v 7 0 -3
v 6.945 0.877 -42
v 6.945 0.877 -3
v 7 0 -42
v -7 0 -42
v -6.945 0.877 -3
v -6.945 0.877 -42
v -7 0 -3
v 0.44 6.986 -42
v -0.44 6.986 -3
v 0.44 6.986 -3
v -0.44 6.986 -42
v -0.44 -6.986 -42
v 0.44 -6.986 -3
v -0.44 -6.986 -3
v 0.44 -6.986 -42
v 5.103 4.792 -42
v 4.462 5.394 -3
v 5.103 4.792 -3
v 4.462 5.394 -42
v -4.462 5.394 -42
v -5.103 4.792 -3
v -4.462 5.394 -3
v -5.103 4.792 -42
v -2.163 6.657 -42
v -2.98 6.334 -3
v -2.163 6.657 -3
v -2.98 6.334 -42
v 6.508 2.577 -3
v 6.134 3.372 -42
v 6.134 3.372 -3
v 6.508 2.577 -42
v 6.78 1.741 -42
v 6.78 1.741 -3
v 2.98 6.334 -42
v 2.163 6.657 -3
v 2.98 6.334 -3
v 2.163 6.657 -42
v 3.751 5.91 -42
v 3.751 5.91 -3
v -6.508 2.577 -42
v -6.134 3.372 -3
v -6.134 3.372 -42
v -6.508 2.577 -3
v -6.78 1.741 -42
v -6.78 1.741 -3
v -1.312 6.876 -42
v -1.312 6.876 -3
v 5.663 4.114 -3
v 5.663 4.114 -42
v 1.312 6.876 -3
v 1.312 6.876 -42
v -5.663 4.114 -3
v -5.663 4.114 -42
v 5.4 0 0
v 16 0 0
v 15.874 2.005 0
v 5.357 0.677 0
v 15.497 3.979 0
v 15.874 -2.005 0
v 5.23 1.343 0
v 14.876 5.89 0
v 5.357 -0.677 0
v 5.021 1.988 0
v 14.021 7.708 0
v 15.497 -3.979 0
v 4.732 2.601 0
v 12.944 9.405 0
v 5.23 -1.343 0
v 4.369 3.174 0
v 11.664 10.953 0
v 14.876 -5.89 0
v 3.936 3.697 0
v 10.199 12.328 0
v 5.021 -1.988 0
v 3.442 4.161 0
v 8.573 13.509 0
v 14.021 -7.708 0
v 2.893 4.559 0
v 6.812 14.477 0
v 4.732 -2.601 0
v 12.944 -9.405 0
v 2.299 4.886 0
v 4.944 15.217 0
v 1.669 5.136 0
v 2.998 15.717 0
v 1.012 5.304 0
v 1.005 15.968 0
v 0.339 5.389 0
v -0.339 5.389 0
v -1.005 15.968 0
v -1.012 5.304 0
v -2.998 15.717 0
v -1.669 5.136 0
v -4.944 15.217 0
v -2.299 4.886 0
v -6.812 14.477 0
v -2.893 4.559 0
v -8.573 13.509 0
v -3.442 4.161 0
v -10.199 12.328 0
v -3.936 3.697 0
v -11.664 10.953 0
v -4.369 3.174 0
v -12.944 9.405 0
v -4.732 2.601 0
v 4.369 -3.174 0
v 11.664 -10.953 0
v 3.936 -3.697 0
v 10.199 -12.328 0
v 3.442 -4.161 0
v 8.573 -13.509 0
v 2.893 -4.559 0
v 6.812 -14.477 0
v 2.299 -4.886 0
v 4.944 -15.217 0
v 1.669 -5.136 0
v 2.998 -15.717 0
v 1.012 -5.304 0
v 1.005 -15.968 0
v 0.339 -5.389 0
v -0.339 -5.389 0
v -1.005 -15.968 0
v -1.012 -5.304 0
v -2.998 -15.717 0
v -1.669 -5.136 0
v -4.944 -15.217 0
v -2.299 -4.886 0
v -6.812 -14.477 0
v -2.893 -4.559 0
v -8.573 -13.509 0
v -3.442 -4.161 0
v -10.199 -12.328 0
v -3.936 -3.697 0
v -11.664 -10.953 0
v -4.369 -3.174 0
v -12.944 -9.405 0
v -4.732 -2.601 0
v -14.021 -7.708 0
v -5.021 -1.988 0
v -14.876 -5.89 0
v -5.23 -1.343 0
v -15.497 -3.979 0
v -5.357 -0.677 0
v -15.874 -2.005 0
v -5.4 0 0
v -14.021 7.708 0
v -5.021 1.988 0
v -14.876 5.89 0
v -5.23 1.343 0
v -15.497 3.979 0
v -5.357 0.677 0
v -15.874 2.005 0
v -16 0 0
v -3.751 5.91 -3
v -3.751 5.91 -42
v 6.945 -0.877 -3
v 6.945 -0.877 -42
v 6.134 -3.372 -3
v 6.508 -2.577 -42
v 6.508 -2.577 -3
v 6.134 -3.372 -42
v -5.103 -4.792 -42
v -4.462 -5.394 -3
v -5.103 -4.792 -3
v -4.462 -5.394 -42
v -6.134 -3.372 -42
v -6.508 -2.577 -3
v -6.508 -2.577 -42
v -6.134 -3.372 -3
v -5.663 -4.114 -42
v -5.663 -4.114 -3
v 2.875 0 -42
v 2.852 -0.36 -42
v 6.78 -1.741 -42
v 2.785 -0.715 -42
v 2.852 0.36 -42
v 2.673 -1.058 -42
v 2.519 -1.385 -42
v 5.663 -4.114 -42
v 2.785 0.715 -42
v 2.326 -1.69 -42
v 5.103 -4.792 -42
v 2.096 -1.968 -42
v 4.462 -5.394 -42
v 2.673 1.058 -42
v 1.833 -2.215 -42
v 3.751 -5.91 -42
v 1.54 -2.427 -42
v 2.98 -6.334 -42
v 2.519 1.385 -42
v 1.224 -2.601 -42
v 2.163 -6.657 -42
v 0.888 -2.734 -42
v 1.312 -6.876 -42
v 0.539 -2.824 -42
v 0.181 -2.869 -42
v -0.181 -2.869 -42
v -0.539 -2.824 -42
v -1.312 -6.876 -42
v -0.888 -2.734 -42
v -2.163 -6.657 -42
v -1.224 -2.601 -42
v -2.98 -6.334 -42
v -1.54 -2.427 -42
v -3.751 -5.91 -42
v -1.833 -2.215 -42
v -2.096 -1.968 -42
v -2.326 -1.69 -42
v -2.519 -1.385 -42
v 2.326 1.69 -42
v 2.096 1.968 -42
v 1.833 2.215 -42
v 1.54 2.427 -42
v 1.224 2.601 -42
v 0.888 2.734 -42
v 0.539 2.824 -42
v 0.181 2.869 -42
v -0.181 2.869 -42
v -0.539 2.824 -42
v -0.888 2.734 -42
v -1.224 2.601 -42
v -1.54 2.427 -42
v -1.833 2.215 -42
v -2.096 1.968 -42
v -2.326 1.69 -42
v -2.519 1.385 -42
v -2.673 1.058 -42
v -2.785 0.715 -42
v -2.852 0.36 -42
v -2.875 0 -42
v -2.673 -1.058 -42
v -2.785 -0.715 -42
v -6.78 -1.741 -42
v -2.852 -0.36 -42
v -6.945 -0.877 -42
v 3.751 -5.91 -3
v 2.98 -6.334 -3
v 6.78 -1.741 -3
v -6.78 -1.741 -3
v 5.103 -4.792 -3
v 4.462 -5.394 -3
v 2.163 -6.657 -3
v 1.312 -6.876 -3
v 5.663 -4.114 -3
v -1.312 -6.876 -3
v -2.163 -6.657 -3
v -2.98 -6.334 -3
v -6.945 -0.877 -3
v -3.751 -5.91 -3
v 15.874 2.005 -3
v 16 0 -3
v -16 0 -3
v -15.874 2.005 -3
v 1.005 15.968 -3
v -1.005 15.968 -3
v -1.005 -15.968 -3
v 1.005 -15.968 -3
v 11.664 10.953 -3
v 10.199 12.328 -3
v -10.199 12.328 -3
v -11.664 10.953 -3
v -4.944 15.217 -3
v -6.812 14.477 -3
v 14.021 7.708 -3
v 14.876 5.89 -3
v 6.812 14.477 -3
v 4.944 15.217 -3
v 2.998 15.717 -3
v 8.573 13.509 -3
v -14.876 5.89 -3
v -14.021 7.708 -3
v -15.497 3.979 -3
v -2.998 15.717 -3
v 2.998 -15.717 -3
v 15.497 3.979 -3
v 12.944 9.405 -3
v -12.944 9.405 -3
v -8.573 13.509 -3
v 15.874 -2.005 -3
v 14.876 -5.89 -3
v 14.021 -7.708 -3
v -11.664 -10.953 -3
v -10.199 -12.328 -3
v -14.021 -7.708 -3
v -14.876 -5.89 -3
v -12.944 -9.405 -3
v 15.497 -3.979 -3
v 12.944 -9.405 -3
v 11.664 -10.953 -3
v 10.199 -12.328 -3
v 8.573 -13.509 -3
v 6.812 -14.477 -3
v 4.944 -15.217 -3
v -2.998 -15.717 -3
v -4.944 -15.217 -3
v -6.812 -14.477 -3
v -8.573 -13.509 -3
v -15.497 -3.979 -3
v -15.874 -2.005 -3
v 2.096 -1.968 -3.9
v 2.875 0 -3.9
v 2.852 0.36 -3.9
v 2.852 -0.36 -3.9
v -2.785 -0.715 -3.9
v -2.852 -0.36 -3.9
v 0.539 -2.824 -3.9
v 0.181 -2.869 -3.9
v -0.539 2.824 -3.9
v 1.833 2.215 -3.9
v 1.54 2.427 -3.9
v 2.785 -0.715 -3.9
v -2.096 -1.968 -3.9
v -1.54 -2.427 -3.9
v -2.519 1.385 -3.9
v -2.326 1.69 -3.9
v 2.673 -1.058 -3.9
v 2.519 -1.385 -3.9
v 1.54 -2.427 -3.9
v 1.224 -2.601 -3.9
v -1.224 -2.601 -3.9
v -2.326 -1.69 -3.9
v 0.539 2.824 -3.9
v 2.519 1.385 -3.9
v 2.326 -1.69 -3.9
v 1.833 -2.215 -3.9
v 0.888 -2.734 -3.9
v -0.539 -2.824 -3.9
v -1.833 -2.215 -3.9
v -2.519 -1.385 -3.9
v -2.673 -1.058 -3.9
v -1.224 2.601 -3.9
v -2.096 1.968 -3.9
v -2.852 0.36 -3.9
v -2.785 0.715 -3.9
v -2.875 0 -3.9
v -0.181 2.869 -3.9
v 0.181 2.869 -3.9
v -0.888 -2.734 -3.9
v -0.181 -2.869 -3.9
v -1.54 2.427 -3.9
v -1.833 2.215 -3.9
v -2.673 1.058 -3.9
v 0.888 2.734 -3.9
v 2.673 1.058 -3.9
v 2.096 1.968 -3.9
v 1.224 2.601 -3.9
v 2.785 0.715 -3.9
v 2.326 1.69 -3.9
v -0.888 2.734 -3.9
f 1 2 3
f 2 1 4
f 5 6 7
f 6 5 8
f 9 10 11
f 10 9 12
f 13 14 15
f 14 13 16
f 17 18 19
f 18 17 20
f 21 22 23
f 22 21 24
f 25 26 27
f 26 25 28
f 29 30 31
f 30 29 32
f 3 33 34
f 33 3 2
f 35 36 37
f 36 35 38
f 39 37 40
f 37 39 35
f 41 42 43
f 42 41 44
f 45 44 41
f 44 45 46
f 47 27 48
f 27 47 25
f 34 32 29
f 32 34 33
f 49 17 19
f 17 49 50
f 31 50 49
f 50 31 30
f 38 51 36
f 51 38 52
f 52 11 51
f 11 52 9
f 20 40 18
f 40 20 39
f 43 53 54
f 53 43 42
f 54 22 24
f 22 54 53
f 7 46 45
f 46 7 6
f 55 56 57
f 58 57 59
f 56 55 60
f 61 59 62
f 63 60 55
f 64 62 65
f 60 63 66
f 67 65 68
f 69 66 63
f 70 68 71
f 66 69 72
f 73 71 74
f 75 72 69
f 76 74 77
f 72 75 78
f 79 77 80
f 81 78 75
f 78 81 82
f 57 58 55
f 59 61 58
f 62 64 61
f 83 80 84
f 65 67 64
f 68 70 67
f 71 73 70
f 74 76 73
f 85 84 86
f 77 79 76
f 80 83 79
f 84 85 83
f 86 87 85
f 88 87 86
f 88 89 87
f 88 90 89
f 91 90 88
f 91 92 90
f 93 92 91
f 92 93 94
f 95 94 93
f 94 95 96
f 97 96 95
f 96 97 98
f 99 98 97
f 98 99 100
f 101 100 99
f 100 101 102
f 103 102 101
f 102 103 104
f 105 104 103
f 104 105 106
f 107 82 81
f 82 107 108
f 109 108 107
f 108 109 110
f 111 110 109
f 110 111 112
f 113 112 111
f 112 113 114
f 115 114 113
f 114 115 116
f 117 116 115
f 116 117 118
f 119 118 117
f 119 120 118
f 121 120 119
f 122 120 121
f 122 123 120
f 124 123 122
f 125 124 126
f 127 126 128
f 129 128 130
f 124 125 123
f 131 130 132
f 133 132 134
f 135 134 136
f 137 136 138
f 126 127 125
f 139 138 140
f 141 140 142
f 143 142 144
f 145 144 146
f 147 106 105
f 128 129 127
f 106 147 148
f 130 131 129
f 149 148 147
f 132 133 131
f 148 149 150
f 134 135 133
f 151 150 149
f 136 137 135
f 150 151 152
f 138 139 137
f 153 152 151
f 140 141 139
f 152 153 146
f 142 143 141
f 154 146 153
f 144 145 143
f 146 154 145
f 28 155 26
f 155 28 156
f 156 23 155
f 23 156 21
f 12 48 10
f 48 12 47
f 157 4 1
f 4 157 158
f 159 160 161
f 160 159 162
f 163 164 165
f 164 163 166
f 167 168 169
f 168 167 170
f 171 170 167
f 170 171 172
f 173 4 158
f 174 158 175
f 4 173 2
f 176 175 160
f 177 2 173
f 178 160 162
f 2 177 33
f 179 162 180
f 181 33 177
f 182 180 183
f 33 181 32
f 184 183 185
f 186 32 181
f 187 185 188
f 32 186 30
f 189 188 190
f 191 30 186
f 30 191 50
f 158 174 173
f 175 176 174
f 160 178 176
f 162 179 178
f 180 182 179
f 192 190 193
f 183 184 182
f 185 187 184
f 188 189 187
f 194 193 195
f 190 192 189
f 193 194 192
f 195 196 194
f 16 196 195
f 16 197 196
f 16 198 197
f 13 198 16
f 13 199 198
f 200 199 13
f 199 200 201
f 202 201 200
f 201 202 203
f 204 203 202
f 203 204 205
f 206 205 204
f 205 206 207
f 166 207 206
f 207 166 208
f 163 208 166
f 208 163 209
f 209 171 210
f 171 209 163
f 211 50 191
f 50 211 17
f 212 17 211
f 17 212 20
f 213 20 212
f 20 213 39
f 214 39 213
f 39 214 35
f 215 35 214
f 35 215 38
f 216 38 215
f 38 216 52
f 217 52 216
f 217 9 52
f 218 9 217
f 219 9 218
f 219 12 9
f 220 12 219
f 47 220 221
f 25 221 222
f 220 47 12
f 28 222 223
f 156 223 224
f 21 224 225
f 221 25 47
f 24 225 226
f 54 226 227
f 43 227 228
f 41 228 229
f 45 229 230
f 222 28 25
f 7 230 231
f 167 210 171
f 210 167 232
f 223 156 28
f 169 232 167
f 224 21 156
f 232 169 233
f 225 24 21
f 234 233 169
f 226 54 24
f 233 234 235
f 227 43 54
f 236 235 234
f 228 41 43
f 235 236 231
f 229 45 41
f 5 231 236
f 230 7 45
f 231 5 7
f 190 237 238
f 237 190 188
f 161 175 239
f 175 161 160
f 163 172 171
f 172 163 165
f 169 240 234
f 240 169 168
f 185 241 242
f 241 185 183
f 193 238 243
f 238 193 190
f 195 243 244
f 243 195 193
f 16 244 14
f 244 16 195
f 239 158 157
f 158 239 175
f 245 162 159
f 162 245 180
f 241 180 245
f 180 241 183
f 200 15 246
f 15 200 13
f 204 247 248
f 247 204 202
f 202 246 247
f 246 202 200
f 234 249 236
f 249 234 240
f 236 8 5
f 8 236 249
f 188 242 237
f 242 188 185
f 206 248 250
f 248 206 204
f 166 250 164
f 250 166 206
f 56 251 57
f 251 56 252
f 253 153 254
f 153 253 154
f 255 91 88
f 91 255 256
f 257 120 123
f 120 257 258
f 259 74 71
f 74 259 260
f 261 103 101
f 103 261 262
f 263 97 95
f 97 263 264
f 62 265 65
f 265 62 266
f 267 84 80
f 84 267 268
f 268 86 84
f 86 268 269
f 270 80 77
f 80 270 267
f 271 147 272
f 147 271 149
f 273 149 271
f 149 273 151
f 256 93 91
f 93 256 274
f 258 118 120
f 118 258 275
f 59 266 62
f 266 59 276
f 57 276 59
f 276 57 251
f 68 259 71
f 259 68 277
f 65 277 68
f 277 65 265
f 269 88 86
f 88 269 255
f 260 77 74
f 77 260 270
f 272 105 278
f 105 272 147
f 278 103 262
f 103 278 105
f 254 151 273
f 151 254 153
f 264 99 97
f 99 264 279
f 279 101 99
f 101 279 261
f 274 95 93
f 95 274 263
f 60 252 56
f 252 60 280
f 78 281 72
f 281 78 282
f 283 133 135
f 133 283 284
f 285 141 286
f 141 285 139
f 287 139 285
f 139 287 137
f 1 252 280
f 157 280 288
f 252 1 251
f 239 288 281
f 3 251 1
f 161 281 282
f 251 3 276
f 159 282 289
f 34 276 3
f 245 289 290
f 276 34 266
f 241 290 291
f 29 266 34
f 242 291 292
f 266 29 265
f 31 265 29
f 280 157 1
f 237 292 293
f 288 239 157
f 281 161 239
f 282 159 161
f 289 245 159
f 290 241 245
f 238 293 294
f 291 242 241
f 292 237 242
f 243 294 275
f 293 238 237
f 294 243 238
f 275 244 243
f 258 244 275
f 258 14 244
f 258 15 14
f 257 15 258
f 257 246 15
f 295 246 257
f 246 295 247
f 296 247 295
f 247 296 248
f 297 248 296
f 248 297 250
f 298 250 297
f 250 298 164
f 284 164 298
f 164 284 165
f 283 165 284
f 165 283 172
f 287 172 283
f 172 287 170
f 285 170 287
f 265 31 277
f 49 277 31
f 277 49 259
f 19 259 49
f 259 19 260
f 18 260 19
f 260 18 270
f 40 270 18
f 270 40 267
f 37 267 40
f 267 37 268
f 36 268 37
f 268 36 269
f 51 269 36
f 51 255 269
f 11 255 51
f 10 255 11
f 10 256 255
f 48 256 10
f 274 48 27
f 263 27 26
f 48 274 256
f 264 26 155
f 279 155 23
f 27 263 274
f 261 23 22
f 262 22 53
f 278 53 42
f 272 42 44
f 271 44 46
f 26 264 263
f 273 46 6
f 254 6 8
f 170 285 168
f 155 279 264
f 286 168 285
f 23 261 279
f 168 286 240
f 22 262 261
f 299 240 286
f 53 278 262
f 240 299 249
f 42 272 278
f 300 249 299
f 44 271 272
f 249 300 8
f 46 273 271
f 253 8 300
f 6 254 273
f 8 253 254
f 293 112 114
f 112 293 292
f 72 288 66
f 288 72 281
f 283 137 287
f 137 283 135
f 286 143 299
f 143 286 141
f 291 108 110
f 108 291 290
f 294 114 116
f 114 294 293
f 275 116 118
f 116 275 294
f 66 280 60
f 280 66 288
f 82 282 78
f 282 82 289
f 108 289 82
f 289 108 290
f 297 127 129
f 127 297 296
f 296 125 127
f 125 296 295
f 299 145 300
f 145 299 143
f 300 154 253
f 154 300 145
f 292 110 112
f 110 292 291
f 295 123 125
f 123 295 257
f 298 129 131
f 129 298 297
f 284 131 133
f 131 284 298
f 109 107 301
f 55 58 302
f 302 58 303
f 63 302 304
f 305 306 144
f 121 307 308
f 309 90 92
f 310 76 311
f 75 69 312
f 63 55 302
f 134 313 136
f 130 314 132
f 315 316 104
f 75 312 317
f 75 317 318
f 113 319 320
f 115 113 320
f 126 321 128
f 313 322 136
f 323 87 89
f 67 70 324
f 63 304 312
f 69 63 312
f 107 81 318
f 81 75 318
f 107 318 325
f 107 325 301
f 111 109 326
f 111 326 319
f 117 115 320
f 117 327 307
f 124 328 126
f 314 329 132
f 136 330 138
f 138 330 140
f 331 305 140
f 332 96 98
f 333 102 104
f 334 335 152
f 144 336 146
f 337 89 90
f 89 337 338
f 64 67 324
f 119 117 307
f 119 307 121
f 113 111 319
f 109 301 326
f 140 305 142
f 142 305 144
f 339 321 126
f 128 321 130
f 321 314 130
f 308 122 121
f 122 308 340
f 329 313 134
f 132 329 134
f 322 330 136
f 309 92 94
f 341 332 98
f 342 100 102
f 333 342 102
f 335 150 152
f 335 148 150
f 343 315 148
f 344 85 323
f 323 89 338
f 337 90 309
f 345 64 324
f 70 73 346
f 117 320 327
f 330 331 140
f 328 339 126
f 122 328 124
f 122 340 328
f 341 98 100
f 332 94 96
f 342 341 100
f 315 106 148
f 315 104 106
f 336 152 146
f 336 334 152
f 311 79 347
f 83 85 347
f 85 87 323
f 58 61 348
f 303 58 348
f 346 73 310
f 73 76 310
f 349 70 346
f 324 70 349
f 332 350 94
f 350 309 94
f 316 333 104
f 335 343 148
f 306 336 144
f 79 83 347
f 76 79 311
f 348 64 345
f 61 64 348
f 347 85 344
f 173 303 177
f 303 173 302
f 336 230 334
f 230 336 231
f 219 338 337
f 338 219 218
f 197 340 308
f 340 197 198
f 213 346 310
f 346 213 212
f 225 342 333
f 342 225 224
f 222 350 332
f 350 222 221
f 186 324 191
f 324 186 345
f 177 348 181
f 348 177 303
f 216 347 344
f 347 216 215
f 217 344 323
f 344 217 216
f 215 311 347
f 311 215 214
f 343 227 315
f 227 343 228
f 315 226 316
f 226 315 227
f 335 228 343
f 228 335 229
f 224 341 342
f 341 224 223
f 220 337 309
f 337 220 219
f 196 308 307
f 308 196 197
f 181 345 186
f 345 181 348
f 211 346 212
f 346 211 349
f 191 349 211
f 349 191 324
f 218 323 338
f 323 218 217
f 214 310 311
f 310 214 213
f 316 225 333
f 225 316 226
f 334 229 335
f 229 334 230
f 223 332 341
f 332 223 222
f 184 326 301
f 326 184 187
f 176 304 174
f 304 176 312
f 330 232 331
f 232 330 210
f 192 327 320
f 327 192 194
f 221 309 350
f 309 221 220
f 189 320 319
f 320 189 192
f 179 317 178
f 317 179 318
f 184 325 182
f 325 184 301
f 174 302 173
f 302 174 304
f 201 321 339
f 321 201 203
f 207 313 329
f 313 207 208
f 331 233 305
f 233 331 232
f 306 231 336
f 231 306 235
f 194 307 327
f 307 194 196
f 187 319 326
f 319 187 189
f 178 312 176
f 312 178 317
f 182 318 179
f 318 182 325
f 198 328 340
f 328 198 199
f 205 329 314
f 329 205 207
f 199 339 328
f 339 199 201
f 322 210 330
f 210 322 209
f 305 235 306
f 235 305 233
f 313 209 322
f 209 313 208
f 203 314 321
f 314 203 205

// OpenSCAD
$fn = 50;


difference() {
	union() {
		translate(v = [0, 0, -42.0000000000]) {
			cylinder(h = 42, r = 7.0000000000);
		}
		translate(v = [0, 0, -3.0000000000]) {
			cylinder(h = 3, r = 16.0000000000);
		}
	}
	union() {
		translate(v = [0, 0, 0]) {
			rotate(a = [0, 0, 0]) {
				difference() {
					union() {
						#translate(v = [0, 0, -42.0000000000]) {
							cylinder(h = 42, r = 2.6000000000);
						}
						#translate(v = [0, 0, -3.9000000000]) {
							cylinder(h = 3.9000000000, r1 = 2.8750000000, r2 = 5.4000000000);
						}
						#translate(v = [0, 0, -42.0000000000]) {
							cylinder(h = 42, r = 2.8750000000);
						}
						#translate(v = [0, 0, -42.0000000000]) {
							cylinder(h = 42, r = 2.6000000000);
						}
					}
					union();
				}
			}
		}
	}
}
